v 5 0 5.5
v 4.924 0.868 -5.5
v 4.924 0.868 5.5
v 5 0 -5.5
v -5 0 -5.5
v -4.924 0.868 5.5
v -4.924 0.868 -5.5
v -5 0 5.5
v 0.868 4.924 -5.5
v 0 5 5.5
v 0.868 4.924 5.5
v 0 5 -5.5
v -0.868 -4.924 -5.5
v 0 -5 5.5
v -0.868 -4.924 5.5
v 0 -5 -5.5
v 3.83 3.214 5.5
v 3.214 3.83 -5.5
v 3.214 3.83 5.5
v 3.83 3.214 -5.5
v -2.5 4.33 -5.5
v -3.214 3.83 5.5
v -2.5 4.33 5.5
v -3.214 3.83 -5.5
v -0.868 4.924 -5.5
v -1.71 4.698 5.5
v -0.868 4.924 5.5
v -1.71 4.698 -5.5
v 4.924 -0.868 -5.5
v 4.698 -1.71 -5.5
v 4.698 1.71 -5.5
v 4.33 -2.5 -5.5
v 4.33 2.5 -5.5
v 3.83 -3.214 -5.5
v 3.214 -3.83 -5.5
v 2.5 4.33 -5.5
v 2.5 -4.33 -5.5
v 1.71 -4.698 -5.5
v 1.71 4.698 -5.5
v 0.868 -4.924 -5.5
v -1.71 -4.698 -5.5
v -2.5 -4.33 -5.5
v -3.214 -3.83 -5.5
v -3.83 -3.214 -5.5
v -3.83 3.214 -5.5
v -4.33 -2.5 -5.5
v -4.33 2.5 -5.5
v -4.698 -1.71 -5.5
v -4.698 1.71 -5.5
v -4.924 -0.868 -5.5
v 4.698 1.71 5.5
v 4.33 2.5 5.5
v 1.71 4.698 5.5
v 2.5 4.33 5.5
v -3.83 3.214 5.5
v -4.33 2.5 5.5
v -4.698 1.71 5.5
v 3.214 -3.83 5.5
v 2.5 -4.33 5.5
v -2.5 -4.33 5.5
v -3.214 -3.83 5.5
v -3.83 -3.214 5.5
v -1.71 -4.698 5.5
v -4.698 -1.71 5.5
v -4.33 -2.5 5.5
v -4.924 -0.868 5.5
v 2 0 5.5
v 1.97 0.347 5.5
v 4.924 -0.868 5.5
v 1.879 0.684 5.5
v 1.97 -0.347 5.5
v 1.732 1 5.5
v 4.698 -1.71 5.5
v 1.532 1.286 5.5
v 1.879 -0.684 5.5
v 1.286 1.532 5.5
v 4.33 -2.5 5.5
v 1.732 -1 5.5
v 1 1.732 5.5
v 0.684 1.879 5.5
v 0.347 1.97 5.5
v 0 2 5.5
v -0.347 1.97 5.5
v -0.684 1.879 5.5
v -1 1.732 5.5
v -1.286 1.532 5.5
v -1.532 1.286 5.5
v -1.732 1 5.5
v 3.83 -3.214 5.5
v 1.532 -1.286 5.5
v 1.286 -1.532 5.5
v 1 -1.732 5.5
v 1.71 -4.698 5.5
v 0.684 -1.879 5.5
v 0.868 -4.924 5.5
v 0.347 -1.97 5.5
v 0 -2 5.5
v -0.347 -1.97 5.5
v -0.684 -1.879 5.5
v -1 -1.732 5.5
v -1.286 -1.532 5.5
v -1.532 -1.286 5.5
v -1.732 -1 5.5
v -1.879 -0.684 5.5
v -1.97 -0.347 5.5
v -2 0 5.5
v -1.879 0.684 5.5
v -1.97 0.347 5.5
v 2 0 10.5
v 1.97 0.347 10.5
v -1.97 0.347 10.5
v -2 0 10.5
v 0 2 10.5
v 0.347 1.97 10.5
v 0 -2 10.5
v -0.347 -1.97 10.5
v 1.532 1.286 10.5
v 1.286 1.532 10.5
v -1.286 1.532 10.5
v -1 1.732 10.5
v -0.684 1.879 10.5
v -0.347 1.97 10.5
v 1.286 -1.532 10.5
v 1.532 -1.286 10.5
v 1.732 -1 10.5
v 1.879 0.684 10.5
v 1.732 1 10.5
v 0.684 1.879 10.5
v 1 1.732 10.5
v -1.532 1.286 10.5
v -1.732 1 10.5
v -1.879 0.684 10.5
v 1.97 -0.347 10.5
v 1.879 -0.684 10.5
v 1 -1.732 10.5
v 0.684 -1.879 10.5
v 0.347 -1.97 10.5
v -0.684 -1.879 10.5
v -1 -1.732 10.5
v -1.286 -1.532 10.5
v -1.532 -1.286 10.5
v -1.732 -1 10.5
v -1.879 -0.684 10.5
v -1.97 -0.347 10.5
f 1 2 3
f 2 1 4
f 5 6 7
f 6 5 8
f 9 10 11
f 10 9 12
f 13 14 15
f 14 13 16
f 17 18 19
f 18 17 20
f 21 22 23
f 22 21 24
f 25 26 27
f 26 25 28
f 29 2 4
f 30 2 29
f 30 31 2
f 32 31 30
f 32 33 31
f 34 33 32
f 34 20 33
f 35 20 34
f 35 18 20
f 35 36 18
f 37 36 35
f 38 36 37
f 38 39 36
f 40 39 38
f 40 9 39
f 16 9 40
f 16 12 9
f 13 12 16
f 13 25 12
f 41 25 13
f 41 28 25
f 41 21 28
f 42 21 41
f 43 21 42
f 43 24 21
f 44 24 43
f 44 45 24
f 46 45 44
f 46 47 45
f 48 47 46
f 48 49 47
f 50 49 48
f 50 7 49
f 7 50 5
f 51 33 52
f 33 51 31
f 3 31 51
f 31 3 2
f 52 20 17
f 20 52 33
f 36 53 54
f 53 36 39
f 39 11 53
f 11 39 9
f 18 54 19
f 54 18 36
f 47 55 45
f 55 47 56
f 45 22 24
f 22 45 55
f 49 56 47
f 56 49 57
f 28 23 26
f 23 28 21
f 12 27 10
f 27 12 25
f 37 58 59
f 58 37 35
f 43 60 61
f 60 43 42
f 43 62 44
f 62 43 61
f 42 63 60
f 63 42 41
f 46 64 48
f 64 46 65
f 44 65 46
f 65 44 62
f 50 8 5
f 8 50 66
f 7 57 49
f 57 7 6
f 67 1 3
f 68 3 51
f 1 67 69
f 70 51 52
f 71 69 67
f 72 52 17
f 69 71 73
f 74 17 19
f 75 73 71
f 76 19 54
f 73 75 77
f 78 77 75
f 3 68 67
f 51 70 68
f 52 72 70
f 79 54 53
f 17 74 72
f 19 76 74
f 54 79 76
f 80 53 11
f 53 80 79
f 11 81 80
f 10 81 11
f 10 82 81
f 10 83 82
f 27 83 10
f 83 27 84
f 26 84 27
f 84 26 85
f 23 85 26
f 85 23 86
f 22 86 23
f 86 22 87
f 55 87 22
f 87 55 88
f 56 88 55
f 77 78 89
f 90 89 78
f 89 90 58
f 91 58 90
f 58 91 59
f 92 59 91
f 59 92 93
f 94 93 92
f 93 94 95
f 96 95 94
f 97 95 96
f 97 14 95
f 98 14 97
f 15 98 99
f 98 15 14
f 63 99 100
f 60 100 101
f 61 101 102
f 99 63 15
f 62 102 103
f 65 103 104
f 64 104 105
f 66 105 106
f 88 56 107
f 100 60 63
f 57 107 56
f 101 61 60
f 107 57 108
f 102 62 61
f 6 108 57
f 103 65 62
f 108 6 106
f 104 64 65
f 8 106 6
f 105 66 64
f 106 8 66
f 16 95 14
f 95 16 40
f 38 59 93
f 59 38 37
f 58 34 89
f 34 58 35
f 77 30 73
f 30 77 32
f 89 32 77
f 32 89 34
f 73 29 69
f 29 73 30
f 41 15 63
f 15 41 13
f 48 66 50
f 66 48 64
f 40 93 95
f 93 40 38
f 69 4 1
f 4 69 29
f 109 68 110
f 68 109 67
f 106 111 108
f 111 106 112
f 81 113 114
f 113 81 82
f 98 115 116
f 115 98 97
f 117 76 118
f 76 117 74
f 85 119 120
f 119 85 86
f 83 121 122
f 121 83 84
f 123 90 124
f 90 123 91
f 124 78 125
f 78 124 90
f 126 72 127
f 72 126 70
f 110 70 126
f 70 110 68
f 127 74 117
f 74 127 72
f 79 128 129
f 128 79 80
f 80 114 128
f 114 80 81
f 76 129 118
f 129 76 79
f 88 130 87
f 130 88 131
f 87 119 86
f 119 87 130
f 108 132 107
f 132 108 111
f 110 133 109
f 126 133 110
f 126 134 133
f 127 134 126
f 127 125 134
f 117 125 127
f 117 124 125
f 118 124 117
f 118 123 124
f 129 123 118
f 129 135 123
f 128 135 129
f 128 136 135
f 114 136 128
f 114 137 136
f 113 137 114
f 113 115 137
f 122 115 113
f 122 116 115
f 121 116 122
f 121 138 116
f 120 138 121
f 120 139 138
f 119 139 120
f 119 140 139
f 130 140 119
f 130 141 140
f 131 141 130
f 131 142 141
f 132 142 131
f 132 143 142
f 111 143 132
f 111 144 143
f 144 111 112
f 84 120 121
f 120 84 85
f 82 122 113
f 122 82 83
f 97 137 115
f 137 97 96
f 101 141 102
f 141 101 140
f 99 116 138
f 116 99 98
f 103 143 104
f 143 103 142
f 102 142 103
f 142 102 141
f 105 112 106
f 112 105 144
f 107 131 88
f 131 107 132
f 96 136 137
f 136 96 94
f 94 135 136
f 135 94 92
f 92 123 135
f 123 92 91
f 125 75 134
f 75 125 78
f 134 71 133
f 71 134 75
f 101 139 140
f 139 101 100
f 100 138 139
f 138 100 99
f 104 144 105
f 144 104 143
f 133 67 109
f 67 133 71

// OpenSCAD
include <../../lib/relativity.scad/relativity.scad>

height = 11;
diameter = 10;
hole_diameter = 4;

$fn=36;

module A() {
  differed("hole", "not(hole)")
  rod(d=diameter, h=height)
  rod(d=hole_diameter, h=$parent_size.z + 0.01, $class="hole");
}


module B() {
  rod(d=diameter, h=height)
  align(top)
  rod(d=hole_diameter, h=5);
}

B();
